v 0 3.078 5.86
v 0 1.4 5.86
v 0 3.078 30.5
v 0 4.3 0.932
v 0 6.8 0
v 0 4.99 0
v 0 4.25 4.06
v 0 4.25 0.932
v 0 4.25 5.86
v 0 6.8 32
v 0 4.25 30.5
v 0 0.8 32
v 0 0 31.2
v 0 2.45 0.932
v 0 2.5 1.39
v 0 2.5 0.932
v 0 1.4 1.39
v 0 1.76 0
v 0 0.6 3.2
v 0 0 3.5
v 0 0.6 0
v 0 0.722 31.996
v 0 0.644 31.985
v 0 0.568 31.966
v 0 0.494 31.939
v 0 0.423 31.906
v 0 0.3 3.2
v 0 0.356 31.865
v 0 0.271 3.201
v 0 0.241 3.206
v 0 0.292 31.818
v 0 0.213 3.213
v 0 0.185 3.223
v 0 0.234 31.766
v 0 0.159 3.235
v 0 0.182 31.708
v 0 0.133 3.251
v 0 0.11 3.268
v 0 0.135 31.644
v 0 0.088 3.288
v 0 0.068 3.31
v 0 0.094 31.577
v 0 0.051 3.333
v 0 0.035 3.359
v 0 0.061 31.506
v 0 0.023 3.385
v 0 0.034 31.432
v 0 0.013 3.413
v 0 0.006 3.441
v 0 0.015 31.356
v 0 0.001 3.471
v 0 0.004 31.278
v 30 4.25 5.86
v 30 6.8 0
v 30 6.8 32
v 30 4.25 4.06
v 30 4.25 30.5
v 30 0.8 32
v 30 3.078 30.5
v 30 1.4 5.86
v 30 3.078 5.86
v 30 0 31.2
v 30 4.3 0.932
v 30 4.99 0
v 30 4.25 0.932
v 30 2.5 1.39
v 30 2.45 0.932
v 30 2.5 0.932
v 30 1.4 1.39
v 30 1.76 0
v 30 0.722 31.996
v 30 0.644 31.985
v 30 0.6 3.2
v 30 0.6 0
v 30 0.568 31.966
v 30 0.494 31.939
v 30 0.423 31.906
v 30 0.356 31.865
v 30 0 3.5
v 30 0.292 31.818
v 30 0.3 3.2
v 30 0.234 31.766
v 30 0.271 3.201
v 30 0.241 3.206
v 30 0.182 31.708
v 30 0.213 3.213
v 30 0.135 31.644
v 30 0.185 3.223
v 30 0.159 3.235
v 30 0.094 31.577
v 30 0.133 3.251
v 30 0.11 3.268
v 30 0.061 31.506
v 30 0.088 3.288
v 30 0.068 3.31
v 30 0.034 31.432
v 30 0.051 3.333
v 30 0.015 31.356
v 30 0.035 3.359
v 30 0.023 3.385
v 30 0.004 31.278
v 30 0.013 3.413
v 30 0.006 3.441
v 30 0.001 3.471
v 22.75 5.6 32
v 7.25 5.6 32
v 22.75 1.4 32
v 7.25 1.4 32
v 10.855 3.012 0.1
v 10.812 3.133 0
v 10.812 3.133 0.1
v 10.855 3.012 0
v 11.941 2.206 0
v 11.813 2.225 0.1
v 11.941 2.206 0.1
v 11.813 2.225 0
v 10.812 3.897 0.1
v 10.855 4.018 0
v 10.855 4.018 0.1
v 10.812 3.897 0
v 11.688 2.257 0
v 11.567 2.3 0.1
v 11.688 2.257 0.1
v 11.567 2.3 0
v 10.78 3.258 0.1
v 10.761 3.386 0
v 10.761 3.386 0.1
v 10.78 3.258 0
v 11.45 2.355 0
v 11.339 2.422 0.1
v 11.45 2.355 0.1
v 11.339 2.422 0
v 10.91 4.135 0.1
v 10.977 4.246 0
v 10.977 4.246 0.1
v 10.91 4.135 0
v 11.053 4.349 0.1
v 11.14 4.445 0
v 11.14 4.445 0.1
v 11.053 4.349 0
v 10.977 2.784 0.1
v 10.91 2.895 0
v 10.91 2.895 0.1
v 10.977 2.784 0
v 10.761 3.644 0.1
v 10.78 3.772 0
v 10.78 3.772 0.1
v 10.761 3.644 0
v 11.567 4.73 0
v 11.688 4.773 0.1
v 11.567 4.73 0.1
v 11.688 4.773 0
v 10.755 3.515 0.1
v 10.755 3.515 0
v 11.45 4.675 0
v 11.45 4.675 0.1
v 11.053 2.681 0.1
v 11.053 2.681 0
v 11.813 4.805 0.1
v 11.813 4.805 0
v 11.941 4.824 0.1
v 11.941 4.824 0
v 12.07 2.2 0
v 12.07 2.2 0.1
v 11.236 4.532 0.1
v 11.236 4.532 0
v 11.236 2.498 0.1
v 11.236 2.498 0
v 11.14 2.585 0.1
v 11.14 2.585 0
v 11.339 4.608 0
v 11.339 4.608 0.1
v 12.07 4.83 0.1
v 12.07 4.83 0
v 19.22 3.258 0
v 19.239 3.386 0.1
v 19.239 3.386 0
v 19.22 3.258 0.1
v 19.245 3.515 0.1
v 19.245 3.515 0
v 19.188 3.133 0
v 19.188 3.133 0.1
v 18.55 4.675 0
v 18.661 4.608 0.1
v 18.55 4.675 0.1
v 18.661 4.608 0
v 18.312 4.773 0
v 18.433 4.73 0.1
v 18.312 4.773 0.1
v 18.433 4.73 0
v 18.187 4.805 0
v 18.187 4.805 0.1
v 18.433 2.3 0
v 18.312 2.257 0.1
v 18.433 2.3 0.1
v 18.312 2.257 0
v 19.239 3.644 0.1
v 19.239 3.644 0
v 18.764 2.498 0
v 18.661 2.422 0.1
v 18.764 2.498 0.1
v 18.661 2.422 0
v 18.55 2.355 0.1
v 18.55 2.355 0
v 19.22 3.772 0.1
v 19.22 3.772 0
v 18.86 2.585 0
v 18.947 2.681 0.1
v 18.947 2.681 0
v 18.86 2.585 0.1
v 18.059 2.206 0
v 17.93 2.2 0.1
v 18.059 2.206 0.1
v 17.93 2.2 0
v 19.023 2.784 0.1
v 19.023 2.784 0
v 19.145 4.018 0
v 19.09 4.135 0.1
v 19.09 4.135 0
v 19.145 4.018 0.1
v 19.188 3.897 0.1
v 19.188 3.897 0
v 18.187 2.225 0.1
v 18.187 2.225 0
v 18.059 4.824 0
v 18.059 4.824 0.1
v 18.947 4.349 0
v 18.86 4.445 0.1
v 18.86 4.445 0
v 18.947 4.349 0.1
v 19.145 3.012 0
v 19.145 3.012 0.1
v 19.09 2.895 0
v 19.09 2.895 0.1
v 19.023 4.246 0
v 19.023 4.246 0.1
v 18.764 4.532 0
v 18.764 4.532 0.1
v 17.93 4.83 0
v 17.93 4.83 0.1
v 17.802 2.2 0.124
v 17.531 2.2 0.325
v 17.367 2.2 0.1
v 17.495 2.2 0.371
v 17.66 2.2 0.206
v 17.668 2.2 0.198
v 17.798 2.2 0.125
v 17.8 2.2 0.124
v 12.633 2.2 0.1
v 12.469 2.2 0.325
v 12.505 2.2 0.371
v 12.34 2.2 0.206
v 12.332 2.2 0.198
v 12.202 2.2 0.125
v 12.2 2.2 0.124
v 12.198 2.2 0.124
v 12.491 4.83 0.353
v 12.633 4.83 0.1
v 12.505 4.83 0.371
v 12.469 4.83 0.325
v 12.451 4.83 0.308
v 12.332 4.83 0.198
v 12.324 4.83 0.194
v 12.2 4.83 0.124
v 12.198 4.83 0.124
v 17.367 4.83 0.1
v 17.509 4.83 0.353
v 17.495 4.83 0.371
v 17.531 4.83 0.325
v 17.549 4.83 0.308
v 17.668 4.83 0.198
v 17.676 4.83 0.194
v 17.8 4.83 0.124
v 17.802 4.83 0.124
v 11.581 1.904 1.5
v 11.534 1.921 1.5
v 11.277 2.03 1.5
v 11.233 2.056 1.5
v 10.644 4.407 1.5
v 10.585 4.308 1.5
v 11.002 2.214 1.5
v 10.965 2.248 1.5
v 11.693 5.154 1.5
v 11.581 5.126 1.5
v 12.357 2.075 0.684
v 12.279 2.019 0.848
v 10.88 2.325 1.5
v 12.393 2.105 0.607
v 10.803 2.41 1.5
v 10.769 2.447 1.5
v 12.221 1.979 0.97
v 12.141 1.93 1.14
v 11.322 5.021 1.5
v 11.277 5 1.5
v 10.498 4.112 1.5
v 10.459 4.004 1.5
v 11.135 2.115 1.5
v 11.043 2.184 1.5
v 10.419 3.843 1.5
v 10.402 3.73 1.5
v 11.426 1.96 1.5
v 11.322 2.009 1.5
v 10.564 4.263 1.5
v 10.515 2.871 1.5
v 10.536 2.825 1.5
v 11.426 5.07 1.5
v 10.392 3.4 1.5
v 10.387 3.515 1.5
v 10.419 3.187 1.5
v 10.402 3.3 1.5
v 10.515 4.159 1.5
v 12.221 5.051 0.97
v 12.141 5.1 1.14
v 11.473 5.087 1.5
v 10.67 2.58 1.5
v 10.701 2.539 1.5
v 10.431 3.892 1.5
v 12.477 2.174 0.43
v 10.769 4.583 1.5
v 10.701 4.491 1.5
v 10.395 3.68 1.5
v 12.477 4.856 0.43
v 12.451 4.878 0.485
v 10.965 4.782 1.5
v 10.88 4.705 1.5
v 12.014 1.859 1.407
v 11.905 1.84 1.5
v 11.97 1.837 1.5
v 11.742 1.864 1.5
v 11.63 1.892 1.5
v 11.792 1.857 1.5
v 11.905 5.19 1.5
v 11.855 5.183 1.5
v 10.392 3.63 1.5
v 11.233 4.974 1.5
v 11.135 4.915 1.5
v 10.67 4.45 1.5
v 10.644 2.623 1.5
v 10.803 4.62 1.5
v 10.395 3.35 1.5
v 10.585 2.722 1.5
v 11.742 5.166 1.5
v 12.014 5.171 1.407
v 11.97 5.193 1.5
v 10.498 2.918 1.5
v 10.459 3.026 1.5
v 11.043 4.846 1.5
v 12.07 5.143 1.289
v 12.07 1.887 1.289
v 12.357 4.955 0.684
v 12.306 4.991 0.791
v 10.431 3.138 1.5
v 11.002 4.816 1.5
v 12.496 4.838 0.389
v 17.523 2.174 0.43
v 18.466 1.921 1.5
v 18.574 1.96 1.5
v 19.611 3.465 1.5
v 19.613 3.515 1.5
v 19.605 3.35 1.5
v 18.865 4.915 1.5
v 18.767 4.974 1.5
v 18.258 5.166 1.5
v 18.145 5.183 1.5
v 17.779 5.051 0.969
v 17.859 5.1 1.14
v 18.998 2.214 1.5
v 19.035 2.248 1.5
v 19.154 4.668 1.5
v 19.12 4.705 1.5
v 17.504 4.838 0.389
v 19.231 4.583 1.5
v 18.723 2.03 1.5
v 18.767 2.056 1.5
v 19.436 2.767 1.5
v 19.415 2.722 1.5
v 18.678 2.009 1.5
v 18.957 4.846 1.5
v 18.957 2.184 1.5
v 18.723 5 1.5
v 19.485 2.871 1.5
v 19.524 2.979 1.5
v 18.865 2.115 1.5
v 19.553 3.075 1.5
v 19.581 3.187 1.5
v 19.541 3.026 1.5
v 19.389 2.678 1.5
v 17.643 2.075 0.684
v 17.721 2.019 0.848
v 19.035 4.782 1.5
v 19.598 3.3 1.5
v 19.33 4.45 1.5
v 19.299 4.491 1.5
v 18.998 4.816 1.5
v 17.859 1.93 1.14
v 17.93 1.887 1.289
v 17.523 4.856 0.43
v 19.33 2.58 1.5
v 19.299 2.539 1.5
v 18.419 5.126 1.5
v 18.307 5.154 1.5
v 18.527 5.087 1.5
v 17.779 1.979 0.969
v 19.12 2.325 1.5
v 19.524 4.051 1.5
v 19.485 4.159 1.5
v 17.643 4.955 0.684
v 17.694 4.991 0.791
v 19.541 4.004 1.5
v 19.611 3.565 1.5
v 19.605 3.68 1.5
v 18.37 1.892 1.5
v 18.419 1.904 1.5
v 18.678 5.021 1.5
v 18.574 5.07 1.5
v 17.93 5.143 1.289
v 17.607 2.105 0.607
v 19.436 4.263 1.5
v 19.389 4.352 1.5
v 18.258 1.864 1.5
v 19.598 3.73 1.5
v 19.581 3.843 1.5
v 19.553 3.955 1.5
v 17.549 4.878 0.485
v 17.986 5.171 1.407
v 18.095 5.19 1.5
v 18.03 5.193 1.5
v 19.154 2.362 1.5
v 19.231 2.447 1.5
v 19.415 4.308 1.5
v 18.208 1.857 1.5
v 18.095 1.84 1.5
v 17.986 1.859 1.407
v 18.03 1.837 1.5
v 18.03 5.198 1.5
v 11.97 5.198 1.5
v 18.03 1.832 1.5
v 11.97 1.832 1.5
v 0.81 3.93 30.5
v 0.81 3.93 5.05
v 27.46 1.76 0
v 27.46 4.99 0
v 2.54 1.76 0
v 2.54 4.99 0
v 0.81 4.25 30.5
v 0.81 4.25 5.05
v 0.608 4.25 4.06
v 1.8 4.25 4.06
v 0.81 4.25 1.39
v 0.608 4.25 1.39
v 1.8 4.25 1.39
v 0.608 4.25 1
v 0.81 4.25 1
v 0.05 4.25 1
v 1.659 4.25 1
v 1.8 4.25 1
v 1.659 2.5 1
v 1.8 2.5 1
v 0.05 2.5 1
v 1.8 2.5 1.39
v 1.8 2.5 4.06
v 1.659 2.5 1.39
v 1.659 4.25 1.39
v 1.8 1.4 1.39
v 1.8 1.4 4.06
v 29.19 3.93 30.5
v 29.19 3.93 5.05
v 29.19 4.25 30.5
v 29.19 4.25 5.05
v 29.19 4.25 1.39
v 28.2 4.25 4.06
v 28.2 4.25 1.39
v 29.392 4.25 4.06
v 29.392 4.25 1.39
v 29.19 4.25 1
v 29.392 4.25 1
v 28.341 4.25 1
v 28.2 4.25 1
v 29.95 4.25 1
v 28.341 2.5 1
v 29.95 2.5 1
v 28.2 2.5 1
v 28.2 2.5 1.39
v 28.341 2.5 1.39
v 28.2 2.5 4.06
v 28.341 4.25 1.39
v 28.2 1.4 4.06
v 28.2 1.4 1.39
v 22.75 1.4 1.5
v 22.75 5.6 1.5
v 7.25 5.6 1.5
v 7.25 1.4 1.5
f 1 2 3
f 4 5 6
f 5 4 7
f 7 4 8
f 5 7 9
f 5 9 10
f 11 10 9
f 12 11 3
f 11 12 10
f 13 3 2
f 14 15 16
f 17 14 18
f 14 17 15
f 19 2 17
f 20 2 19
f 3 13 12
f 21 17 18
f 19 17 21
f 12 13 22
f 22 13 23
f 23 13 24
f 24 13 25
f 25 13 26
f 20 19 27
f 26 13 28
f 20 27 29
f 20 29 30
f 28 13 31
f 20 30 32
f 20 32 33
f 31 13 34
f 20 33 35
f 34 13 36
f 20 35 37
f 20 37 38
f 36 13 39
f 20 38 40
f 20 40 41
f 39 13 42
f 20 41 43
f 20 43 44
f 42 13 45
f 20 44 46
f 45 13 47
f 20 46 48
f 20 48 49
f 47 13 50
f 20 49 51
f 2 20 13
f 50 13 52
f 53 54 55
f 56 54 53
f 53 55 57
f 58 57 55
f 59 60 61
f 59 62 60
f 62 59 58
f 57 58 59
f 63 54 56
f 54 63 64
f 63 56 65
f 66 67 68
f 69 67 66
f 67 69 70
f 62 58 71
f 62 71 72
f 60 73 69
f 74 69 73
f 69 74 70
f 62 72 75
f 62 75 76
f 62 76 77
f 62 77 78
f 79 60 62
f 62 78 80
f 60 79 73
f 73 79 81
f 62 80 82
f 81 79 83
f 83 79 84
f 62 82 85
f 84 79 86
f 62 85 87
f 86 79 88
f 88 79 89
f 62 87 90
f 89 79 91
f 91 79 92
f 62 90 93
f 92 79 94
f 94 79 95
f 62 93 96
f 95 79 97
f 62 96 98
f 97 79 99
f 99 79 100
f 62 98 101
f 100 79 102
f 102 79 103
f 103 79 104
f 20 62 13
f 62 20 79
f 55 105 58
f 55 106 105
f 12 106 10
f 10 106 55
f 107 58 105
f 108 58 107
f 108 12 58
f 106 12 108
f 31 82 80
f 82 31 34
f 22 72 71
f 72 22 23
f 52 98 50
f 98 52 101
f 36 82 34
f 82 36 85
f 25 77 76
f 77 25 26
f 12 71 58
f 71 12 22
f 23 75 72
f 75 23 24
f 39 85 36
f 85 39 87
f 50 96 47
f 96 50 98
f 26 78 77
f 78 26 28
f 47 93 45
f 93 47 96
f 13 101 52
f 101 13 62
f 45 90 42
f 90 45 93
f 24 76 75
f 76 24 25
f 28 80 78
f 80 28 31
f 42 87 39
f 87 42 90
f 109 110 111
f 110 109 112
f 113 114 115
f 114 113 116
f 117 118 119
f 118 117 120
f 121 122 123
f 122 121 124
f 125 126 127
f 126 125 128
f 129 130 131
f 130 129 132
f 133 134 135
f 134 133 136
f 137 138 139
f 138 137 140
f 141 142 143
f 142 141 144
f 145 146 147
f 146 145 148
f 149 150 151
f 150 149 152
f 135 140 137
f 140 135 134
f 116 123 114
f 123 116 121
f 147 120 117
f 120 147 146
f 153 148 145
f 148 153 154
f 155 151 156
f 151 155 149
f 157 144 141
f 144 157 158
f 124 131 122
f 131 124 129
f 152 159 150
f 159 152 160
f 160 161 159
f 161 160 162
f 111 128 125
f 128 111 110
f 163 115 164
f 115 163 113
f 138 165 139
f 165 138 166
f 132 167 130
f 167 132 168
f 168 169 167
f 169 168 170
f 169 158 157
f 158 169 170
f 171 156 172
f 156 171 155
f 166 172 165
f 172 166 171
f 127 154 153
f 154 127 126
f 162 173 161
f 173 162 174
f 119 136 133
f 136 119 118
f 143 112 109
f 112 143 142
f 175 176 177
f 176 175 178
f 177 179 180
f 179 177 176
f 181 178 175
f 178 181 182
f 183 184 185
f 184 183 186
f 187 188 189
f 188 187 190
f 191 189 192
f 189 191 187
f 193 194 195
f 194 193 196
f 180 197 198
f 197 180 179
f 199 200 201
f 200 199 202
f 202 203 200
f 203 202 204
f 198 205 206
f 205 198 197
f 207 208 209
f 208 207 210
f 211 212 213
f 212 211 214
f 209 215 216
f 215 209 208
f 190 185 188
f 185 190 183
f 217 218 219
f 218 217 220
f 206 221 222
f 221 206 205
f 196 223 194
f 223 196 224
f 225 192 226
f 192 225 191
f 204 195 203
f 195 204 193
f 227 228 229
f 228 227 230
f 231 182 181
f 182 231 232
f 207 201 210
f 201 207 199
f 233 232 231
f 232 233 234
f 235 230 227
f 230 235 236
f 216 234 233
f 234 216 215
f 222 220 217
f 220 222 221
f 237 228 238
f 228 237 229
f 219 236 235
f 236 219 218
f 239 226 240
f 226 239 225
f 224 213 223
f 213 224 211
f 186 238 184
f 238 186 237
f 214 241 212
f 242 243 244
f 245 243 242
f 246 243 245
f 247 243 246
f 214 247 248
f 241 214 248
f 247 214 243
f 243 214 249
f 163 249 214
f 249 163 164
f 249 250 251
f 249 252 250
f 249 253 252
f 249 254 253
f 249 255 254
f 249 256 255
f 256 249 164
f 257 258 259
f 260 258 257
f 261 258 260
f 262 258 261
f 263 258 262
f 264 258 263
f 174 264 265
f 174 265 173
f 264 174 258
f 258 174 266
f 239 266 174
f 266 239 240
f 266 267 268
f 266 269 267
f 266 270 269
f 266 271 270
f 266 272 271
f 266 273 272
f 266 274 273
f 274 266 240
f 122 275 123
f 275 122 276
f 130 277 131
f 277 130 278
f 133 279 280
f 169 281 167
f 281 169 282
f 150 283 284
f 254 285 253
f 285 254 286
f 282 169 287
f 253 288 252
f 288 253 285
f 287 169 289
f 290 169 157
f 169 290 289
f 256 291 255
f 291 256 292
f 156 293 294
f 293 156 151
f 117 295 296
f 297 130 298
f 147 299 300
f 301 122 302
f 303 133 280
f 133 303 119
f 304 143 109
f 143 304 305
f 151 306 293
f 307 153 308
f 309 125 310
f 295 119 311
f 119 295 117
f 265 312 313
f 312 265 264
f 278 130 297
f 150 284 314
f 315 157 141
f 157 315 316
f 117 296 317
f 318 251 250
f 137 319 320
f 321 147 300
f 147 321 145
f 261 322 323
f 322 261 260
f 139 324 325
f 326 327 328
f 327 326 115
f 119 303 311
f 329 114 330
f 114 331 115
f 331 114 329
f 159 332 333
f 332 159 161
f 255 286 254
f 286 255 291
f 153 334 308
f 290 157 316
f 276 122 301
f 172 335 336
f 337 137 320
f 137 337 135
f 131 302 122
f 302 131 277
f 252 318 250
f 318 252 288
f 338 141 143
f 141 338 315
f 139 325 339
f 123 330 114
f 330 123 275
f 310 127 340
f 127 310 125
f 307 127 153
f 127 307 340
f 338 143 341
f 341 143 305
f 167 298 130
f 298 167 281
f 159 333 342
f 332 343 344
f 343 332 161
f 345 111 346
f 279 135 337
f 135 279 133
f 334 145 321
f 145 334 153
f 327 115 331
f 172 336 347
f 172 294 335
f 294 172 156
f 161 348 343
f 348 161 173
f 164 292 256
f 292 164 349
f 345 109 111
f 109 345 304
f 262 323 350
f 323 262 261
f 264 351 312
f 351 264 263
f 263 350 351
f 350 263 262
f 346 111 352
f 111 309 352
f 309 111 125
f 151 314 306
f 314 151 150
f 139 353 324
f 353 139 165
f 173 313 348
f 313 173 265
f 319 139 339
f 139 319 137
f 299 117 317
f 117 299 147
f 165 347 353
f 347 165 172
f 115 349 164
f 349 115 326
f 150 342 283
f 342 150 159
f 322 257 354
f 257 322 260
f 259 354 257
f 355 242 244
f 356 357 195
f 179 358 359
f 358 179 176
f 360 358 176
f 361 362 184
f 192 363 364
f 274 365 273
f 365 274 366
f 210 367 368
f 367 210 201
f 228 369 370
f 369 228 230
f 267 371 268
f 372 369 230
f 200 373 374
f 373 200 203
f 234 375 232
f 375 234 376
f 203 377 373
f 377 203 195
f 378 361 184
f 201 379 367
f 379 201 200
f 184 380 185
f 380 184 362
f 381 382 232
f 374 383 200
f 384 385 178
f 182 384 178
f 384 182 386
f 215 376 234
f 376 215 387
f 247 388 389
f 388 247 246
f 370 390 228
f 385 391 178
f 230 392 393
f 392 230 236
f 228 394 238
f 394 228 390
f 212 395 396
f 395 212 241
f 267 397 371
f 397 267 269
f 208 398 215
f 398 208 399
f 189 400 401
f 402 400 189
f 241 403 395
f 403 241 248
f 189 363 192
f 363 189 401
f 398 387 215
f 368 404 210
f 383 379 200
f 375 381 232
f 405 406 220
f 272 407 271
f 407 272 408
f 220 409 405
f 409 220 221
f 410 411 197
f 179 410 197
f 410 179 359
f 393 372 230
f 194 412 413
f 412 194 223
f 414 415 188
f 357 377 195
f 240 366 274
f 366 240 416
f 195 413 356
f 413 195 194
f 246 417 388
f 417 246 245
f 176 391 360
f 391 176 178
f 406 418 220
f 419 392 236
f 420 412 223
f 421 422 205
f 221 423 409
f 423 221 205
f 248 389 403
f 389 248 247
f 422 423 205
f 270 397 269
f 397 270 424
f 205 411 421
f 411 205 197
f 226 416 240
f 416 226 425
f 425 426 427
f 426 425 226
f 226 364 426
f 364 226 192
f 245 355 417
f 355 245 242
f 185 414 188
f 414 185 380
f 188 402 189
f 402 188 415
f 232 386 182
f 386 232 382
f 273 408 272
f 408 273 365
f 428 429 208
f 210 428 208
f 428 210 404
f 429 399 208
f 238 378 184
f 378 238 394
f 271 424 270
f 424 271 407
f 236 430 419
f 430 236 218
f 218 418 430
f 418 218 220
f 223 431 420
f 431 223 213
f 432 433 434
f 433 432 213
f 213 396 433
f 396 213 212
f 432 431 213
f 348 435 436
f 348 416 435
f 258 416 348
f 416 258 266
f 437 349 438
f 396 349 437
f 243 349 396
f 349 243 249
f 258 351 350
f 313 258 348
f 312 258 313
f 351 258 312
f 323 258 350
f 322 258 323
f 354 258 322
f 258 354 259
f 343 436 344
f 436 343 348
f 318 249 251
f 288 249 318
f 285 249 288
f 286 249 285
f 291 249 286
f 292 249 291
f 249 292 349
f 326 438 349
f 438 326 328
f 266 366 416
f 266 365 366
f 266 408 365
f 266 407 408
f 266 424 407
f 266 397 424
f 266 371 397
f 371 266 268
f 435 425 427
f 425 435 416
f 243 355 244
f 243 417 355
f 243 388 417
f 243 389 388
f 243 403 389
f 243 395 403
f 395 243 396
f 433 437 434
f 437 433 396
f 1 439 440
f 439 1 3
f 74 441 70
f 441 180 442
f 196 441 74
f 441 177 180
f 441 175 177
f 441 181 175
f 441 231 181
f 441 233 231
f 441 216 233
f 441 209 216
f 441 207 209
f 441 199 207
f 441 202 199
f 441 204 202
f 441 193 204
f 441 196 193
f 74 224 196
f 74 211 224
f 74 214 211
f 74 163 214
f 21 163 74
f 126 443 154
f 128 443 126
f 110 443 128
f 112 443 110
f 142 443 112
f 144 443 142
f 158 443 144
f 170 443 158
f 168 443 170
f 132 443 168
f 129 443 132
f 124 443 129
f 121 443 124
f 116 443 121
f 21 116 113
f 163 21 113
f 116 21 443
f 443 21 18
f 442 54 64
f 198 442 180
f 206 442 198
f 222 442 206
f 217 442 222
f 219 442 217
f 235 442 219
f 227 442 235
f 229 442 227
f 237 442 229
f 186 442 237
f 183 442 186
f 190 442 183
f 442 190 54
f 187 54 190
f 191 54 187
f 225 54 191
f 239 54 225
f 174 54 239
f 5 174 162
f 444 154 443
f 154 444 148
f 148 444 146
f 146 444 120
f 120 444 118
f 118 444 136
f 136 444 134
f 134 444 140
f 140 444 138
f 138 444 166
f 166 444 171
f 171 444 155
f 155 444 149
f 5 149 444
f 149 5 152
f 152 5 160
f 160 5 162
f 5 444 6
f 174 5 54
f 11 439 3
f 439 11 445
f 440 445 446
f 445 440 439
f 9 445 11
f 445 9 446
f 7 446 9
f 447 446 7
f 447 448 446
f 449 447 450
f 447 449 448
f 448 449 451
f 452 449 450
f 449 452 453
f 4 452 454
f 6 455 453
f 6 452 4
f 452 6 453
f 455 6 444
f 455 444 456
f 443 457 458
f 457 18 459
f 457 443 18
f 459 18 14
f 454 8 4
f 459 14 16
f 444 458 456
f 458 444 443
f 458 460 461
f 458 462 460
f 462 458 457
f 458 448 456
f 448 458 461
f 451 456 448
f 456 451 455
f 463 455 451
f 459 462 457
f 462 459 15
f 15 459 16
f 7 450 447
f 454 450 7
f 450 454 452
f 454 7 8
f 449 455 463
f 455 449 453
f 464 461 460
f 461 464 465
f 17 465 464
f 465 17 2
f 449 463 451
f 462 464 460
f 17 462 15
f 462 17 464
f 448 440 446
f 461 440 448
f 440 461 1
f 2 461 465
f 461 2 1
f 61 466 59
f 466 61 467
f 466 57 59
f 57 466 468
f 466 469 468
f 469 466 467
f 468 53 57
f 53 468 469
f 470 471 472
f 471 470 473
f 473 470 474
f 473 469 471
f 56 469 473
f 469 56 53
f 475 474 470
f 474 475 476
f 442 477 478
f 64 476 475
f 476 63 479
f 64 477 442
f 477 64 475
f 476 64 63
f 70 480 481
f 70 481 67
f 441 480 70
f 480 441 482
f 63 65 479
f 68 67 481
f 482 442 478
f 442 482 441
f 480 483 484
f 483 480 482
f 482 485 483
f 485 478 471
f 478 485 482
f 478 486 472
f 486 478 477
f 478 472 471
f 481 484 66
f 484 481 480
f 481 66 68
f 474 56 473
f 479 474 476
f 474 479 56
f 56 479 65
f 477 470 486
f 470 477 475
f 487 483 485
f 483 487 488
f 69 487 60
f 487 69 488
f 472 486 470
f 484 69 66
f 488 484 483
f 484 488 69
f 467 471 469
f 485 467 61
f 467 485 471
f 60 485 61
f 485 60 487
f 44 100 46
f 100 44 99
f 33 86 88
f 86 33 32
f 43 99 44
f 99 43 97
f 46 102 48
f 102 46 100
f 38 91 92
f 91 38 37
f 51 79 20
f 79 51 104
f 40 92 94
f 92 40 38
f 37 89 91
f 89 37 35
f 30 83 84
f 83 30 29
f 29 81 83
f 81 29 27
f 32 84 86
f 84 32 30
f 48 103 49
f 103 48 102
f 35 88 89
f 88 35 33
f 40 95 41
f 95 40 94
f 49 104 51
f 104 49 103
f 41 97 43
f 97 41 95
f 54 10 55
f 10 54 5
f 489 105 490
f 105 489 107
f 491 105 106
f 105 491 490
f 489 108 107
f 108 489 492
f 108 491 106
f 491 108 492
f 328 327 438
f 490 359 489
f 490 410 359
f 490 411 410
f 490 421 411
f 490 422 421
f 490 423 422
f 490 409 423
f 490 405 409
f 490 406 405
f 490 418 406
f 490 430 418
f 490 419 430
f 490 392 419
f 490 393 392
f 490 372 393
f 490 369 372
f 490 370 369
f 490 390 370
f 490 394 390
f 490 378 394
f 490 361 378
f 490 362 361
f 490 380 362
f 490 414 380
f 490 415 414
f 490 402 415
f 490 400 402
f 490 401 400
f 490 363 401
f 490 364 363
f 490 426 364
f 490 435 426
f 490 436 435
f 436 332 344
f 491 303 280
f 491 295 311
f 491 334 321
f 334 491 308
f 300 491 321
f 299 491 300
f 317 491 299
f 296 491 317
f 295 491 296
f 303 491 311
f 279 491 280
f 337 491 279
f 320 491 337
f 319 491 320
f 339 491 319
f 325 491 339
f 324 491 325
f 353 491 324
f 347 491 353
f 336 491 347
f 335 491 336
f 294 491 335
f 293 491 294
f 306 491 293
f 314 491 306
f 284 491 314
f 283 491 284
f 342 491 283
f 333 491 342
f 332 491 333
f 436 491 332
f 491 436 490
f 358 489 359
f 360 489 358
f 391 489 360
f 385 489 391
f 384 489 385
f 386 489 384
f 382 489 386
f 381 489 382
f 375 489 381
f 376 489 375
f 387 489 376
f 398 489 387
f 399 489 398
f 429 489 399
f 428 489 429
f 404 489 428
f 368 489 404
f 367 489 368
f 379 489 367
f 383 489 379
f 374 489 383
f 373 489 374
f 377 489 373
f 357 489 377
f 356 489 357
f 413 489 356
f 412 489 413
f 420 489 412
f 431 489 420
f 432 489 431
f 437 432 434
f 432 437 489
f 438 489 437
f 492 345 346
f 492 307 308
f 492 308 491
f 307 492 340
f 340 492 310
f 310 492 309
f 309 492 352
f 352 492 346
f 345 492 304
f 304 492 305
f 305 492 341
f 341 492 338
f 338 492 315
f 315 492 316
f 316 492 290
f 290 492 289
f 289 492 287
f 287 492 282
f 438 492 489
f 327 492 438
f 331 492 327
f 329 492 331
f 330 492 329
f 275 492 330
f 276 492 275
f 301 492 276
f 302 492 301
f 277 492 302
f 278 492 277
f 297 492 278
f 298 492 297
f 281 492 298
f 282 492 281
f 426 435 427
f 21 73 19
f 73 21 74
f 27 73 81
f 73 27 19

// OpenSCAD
// Parametric Expansion Card
//  An OpenSCAD implementation of a basic enclosure of an Expansion Card for
//  use with Framework products like the Framework Laptop.
//
//  See https://frame.work for more information about Framework products and
//  additional documentation around Expansion Cards.

// Parametric Expansion Card © 2021 by Nirav Patel at Framework Computer LLC
// is licensed under Attribution 4.0 International. 
// To view a copy of this license, visit http://creativecommons.org/licenses/by/4.0/

// The basic dimensions of an Expansion Card
base = [30.0, 32.0, 6.8];
// The default wall thickness
side_wall = 1.5;

// Size and location of the typical PCB
pcb_gap = 0.5;
pcb = [26.0, 30.0, 0.8];
pcb_h = 3.05;

// USB-C plug dimensions
usb_c_r = 1.315;
usb_c_w = 5.86+usb_c_r*2;
usb_c_h = 2.2;

rail_h = 4.25; // to top of rail

// Boss locations matching the other Framework Expansion Cards
boss_y = 10.5;
boss_x = 3.7;

// The rail cutout in the sides of the card
module rail(make_printable) {
    rail_depth = 0.81;
    rail_flat_h = 0.32;
    
    mirror([0, 1, 0]) {
        
        // The rail that holds the card
        bottom_angle = 43.54;
        difference() {
            union() {
                translate([rail_depth, 0, -rail_flat_h]) rotate([0, 180+bottom_angle, 0]) cube([2, base[1]-side_wall, 2]);
                translate([-2+rail_depth, 0, -rail_flat_h]) cube([2, base[1]-side_wall, rail_flat_h]);
            }
            translate([-5+rail_depth, 0, 0]) cube([5, base[1]-side_wall, 5]);
        }
    
        pyramid_b = 3.23*sqrt(2);
        pyramid_t = 1.75*sqrt(2);
        pyramid_h = 1.0;
        pyramid_inset = 1.3+0.5;
        pyramid_step = 3.06;
        
        // The ramps to make slotting into the latch smooth
        translate([-1.75/2+pyramid_inset, 0, -1.75/2]) rotate([-90, 0, 0]) rotate([0, 0, 45]) { 
            cylinder(r1 = pyramid_b/2, r2 = pyramid_t/2, h = pyramid_h, $fn=4);
            cylinder(r = pyramid_t/2, h = pyramid_step+pyramid_h, $fn=4);
            translate([-0.1, 0.1, 0])cylinder(r = pyramid_t/2, h = pyramid_step+pyramid_h, $fn=4);
        }
        
        latch_l = 2.67;
        latch_d = pyramid_inset;
        latch_h = 2.85;
        latch_wall = 1.39;
        
        // The pocket that the latch bar drops into, including a 45 degree cut for printability
        translate([0, latch_wall, -latch_h]) cube([latch_d, latch_l, latch_h]);
        if (make_printable) {
            translate([latch_d, latch_wall+latch_l, -latch_h]) rotate([0, 0, -180+45]) translate([0, -latch_l, 0]) cube([latch_d*2, latch_l, latch_h]);
        }
    }
}

// A simple 45 degree rib to improve printability
module rib(thickness, height) {
    translate([-thickness/2, 0, 0]) difference() {
        cube([thickness, height, height]);
        translate([-thickness/2, height, 0]) rotate([45, 0, 0]) cube([thickness*2, height*2, height*2]);
    }
}

// A simple cylinder cutout to fillet edges
module fillet(radius, length) {
    translate([length, 0, 0]) rotate([0, -90, 0]) difference() {
        cube([radius, radius, length]);
        translate([radius, radius, -1]) cylinder(h = length+2, r = radius, $fn = 64);
    }
}

// The cutout for the USB-C plug
module usb_c_cutout(open_top) {
    // The plug is "pushed in" by an extra 0.6 to account for 3d printing tolerances
    translate([-usb_c_w/2+usb_c_r, 7-10+0.6, usb_c_r]) rotate([-90, 0, 0]) union() {
        translate([0, usb_c_r, 0]) cylinder(r = usb_c_r, h = 10, $fn = 64);
        translate([usb_c_w-usb_c_r*2, usb_c_r, 0]) cylinder(r = usb_c_r, h = 10, $fn = 64);
        cube([usb_c_w-usb_c_r*2, usb_c_r*2, 10]);
        
        // Cutout for the pin side of the shell that expands out
        translate([0, usb_c_r, 0]) cylinder(r2 = usb_c_r, r1 = 3.84/2, h = 10-7.7, $fn = 64);
        translate([usb_c_w-usb_c_r*2, usb_c_r, 0]) cylinder(r2 = usb_c_r, r1 = 3.84/2, h = 10-7.7, $fn = 64);
        translate([usb_c_w/2-usb_c_r, usb_c_r, 0]) scale([1.8, 1, 1]) rotate([0, 0, 45]) cylinder(r2 = usb_c_r*sqrt(2), r1 = 3.84/2*sqrt(2), h = 10-7.7, $fn = 4);
        
        // If the card drops in from the top rather than sliding in from the front,
        // cut out a slot for the USB-C plug to drop into.
        if (false) {
            translate([-usb_c_r, -10+usb_c_r, 0]) cube([usb_c_w, 10, 10]);
        }
    }
}

// Quarter section of a sphere, used as a clip
module qsphere(radius = 1) {
    difference() {
        sphere(r = radius, $fn = 32);
        translate([-radius-1, -radius-1, -radius]) cube([radius*2+2, radius*2+2, radius]);
        translate([0, -radius-1, -radius-1]) cube([radius, radius*2+2, radius*2+2]);
    }
}

// The screw boss for the PCB, optionally with space for a threaded insert
module boss(radius, use_insert, make_printable) {
    difference() {
        cylinder(r = radius, h = pcb_h, $fn = 64);
        if (use_insert) {
            // Use threaded insert
            translate([0, 0, side_wall]) cylinder(r = 1.5, h = pcb_h, $fn = 64);
        } else {
            translate([0, 0, side_wall]) cylinder(r = 0.75, h = pcb_h, $fn = 64);
        }
    }
    
    // Add a rib for printability
    if (make_printable) {
        translate([0, radius-0.1, 0]) rib(1, pcb_h);
    }
}

// Incomplete implementation of a lid to use with this shell
module expansion_card_lid() {
    gap = 0.25;
    union() {
        translate([side_wall+gap, side_wall+gap, base[2]-side_wall]) cube([base[0]-side_wall*2-gap*2, base[1]-side_wall*2-gap*2, side_wall]);
        difference() {
            translate([base[0]/2-usb_c_w/2+gap, base[1]-side_wall-gap, usb_c_r+usb_c_h]) cube([usb_c_w-gap*2, side_wall+gap, base[2]-(usb_c_r+usb_c_h)]);
            translate([base[0]/2, base[1], usb_c_r+usb_c_h]) usb_c_cutout(false);
        }
    }
}

// A basic, printable Expansion Card enclosure
//  open_end - A boolean to make the end of the card that is exposed when inserted open
//  make_printable - Adds ribs to improve printability
//  pcb_mount - The method the PCB is held in with, "boss" for self-threading screws,
//            "boss_insert" for fastener with a threaded insert,
//            "clip" for a fastener-less clip, or
//            "" for no PCB mounting structure
module expansion_card_base(open_end, make_printable, pcb_mount="boss") {
    // Hollowing of the inside
    extra = 0.1;
    inner = [base[0]-side_wall*2, base[1]-side_wall*2, base[2]-side_wall+extra];
    boss_radius = 2.3;
    
    difference() {
        cube(base);
        

        // The rounded front edge to match the laptop
        edge_r = 0.8;
        fillet(edge_r, base[0]);
        
        // The USB-C plug cutout
        translate([base[0]/2, base[1], usb_c_r+usb_c_h]) usb_c_cutout(!open_end);
        translate([base[0]/2, -1.5+base[1]/2, 3.5]) cube([15.5,base[1],4.2], center=true);
        
        
        // The sliding rails
        translate([0, base[1], rail_h]) rail(make_printable);
        translate([base[0], base[1], rail_h]) mirror([1, 0, 0]) rail(make_printable);
        
        // Cut out the end of what is normally the aluminum cover
        ledge_cut = 0.6;
        ledge_cut_d = 3.2;
        ledge_fillet_r = 0.3;
        
        translate([0, base[1]-ledge_cut_d, 0]) cube([base[0], ledge_cut_d, ledge_cut]);
        // The fillet on that cover
        translate([base[0], base[1]-ledge_cut_d, 0]) rotate([0, 0, 180]) fillet(ledge_cut/2, base[0]);
    }
    
    if (pcb_mount == "boss" || pcb_mount == "boss_insert") {        
        // Add the screw bosses
        translate([boss_x, boss_y, 0]) boss(boss_radius, pcb_mount == "boss_insert", make_printable);
        translate([base[0]-boss_x, boss_y, 0]) boss(boss_radius, pcb_mount == "boss_insert", make_printable);
    } else if (pcb_mount == "clip") {
        clip_w = 1.5;
        clip_gap = 0.5;
        translate([boss_x-boss_radius, boss_y-boss_radius, 0]) {
            cube([boss_radius*2, boss_radius*2, pcb_h]);
            if (make_printable)
                translate([boss_radius, boss_radius*2, 0]) rib(boss_radius*2, pcb_h);
            translate([0, boss_radius-clip_w, pcb_h+pcb[2]+clip_gap]) rotate([0, 0, 180]) qsphere(clip_w);
        }
        translate([base[0]-boss_x-boss_radius, boss_y-boss_radius, 0]) {
            cube([boss_radius*2, boss_radius*2, pcb_h]);
            if (make_printable)
                translate([boss_radius, boss_radius*2, 0]) rib(boss_radius*2, pcb_h);
            translate([boss_radius*2, boss_radius-clip_w, pcb_h+pcb[2]+clip_gap]) qsphere(clip_w);
        }
    }
}

// Rotate into a printable orientation
rotate([-90, 0, 0]) translate([0, -base[1], 0]) expansion_card_base(open_end = false, make_printable = true, pcb_mount="");
